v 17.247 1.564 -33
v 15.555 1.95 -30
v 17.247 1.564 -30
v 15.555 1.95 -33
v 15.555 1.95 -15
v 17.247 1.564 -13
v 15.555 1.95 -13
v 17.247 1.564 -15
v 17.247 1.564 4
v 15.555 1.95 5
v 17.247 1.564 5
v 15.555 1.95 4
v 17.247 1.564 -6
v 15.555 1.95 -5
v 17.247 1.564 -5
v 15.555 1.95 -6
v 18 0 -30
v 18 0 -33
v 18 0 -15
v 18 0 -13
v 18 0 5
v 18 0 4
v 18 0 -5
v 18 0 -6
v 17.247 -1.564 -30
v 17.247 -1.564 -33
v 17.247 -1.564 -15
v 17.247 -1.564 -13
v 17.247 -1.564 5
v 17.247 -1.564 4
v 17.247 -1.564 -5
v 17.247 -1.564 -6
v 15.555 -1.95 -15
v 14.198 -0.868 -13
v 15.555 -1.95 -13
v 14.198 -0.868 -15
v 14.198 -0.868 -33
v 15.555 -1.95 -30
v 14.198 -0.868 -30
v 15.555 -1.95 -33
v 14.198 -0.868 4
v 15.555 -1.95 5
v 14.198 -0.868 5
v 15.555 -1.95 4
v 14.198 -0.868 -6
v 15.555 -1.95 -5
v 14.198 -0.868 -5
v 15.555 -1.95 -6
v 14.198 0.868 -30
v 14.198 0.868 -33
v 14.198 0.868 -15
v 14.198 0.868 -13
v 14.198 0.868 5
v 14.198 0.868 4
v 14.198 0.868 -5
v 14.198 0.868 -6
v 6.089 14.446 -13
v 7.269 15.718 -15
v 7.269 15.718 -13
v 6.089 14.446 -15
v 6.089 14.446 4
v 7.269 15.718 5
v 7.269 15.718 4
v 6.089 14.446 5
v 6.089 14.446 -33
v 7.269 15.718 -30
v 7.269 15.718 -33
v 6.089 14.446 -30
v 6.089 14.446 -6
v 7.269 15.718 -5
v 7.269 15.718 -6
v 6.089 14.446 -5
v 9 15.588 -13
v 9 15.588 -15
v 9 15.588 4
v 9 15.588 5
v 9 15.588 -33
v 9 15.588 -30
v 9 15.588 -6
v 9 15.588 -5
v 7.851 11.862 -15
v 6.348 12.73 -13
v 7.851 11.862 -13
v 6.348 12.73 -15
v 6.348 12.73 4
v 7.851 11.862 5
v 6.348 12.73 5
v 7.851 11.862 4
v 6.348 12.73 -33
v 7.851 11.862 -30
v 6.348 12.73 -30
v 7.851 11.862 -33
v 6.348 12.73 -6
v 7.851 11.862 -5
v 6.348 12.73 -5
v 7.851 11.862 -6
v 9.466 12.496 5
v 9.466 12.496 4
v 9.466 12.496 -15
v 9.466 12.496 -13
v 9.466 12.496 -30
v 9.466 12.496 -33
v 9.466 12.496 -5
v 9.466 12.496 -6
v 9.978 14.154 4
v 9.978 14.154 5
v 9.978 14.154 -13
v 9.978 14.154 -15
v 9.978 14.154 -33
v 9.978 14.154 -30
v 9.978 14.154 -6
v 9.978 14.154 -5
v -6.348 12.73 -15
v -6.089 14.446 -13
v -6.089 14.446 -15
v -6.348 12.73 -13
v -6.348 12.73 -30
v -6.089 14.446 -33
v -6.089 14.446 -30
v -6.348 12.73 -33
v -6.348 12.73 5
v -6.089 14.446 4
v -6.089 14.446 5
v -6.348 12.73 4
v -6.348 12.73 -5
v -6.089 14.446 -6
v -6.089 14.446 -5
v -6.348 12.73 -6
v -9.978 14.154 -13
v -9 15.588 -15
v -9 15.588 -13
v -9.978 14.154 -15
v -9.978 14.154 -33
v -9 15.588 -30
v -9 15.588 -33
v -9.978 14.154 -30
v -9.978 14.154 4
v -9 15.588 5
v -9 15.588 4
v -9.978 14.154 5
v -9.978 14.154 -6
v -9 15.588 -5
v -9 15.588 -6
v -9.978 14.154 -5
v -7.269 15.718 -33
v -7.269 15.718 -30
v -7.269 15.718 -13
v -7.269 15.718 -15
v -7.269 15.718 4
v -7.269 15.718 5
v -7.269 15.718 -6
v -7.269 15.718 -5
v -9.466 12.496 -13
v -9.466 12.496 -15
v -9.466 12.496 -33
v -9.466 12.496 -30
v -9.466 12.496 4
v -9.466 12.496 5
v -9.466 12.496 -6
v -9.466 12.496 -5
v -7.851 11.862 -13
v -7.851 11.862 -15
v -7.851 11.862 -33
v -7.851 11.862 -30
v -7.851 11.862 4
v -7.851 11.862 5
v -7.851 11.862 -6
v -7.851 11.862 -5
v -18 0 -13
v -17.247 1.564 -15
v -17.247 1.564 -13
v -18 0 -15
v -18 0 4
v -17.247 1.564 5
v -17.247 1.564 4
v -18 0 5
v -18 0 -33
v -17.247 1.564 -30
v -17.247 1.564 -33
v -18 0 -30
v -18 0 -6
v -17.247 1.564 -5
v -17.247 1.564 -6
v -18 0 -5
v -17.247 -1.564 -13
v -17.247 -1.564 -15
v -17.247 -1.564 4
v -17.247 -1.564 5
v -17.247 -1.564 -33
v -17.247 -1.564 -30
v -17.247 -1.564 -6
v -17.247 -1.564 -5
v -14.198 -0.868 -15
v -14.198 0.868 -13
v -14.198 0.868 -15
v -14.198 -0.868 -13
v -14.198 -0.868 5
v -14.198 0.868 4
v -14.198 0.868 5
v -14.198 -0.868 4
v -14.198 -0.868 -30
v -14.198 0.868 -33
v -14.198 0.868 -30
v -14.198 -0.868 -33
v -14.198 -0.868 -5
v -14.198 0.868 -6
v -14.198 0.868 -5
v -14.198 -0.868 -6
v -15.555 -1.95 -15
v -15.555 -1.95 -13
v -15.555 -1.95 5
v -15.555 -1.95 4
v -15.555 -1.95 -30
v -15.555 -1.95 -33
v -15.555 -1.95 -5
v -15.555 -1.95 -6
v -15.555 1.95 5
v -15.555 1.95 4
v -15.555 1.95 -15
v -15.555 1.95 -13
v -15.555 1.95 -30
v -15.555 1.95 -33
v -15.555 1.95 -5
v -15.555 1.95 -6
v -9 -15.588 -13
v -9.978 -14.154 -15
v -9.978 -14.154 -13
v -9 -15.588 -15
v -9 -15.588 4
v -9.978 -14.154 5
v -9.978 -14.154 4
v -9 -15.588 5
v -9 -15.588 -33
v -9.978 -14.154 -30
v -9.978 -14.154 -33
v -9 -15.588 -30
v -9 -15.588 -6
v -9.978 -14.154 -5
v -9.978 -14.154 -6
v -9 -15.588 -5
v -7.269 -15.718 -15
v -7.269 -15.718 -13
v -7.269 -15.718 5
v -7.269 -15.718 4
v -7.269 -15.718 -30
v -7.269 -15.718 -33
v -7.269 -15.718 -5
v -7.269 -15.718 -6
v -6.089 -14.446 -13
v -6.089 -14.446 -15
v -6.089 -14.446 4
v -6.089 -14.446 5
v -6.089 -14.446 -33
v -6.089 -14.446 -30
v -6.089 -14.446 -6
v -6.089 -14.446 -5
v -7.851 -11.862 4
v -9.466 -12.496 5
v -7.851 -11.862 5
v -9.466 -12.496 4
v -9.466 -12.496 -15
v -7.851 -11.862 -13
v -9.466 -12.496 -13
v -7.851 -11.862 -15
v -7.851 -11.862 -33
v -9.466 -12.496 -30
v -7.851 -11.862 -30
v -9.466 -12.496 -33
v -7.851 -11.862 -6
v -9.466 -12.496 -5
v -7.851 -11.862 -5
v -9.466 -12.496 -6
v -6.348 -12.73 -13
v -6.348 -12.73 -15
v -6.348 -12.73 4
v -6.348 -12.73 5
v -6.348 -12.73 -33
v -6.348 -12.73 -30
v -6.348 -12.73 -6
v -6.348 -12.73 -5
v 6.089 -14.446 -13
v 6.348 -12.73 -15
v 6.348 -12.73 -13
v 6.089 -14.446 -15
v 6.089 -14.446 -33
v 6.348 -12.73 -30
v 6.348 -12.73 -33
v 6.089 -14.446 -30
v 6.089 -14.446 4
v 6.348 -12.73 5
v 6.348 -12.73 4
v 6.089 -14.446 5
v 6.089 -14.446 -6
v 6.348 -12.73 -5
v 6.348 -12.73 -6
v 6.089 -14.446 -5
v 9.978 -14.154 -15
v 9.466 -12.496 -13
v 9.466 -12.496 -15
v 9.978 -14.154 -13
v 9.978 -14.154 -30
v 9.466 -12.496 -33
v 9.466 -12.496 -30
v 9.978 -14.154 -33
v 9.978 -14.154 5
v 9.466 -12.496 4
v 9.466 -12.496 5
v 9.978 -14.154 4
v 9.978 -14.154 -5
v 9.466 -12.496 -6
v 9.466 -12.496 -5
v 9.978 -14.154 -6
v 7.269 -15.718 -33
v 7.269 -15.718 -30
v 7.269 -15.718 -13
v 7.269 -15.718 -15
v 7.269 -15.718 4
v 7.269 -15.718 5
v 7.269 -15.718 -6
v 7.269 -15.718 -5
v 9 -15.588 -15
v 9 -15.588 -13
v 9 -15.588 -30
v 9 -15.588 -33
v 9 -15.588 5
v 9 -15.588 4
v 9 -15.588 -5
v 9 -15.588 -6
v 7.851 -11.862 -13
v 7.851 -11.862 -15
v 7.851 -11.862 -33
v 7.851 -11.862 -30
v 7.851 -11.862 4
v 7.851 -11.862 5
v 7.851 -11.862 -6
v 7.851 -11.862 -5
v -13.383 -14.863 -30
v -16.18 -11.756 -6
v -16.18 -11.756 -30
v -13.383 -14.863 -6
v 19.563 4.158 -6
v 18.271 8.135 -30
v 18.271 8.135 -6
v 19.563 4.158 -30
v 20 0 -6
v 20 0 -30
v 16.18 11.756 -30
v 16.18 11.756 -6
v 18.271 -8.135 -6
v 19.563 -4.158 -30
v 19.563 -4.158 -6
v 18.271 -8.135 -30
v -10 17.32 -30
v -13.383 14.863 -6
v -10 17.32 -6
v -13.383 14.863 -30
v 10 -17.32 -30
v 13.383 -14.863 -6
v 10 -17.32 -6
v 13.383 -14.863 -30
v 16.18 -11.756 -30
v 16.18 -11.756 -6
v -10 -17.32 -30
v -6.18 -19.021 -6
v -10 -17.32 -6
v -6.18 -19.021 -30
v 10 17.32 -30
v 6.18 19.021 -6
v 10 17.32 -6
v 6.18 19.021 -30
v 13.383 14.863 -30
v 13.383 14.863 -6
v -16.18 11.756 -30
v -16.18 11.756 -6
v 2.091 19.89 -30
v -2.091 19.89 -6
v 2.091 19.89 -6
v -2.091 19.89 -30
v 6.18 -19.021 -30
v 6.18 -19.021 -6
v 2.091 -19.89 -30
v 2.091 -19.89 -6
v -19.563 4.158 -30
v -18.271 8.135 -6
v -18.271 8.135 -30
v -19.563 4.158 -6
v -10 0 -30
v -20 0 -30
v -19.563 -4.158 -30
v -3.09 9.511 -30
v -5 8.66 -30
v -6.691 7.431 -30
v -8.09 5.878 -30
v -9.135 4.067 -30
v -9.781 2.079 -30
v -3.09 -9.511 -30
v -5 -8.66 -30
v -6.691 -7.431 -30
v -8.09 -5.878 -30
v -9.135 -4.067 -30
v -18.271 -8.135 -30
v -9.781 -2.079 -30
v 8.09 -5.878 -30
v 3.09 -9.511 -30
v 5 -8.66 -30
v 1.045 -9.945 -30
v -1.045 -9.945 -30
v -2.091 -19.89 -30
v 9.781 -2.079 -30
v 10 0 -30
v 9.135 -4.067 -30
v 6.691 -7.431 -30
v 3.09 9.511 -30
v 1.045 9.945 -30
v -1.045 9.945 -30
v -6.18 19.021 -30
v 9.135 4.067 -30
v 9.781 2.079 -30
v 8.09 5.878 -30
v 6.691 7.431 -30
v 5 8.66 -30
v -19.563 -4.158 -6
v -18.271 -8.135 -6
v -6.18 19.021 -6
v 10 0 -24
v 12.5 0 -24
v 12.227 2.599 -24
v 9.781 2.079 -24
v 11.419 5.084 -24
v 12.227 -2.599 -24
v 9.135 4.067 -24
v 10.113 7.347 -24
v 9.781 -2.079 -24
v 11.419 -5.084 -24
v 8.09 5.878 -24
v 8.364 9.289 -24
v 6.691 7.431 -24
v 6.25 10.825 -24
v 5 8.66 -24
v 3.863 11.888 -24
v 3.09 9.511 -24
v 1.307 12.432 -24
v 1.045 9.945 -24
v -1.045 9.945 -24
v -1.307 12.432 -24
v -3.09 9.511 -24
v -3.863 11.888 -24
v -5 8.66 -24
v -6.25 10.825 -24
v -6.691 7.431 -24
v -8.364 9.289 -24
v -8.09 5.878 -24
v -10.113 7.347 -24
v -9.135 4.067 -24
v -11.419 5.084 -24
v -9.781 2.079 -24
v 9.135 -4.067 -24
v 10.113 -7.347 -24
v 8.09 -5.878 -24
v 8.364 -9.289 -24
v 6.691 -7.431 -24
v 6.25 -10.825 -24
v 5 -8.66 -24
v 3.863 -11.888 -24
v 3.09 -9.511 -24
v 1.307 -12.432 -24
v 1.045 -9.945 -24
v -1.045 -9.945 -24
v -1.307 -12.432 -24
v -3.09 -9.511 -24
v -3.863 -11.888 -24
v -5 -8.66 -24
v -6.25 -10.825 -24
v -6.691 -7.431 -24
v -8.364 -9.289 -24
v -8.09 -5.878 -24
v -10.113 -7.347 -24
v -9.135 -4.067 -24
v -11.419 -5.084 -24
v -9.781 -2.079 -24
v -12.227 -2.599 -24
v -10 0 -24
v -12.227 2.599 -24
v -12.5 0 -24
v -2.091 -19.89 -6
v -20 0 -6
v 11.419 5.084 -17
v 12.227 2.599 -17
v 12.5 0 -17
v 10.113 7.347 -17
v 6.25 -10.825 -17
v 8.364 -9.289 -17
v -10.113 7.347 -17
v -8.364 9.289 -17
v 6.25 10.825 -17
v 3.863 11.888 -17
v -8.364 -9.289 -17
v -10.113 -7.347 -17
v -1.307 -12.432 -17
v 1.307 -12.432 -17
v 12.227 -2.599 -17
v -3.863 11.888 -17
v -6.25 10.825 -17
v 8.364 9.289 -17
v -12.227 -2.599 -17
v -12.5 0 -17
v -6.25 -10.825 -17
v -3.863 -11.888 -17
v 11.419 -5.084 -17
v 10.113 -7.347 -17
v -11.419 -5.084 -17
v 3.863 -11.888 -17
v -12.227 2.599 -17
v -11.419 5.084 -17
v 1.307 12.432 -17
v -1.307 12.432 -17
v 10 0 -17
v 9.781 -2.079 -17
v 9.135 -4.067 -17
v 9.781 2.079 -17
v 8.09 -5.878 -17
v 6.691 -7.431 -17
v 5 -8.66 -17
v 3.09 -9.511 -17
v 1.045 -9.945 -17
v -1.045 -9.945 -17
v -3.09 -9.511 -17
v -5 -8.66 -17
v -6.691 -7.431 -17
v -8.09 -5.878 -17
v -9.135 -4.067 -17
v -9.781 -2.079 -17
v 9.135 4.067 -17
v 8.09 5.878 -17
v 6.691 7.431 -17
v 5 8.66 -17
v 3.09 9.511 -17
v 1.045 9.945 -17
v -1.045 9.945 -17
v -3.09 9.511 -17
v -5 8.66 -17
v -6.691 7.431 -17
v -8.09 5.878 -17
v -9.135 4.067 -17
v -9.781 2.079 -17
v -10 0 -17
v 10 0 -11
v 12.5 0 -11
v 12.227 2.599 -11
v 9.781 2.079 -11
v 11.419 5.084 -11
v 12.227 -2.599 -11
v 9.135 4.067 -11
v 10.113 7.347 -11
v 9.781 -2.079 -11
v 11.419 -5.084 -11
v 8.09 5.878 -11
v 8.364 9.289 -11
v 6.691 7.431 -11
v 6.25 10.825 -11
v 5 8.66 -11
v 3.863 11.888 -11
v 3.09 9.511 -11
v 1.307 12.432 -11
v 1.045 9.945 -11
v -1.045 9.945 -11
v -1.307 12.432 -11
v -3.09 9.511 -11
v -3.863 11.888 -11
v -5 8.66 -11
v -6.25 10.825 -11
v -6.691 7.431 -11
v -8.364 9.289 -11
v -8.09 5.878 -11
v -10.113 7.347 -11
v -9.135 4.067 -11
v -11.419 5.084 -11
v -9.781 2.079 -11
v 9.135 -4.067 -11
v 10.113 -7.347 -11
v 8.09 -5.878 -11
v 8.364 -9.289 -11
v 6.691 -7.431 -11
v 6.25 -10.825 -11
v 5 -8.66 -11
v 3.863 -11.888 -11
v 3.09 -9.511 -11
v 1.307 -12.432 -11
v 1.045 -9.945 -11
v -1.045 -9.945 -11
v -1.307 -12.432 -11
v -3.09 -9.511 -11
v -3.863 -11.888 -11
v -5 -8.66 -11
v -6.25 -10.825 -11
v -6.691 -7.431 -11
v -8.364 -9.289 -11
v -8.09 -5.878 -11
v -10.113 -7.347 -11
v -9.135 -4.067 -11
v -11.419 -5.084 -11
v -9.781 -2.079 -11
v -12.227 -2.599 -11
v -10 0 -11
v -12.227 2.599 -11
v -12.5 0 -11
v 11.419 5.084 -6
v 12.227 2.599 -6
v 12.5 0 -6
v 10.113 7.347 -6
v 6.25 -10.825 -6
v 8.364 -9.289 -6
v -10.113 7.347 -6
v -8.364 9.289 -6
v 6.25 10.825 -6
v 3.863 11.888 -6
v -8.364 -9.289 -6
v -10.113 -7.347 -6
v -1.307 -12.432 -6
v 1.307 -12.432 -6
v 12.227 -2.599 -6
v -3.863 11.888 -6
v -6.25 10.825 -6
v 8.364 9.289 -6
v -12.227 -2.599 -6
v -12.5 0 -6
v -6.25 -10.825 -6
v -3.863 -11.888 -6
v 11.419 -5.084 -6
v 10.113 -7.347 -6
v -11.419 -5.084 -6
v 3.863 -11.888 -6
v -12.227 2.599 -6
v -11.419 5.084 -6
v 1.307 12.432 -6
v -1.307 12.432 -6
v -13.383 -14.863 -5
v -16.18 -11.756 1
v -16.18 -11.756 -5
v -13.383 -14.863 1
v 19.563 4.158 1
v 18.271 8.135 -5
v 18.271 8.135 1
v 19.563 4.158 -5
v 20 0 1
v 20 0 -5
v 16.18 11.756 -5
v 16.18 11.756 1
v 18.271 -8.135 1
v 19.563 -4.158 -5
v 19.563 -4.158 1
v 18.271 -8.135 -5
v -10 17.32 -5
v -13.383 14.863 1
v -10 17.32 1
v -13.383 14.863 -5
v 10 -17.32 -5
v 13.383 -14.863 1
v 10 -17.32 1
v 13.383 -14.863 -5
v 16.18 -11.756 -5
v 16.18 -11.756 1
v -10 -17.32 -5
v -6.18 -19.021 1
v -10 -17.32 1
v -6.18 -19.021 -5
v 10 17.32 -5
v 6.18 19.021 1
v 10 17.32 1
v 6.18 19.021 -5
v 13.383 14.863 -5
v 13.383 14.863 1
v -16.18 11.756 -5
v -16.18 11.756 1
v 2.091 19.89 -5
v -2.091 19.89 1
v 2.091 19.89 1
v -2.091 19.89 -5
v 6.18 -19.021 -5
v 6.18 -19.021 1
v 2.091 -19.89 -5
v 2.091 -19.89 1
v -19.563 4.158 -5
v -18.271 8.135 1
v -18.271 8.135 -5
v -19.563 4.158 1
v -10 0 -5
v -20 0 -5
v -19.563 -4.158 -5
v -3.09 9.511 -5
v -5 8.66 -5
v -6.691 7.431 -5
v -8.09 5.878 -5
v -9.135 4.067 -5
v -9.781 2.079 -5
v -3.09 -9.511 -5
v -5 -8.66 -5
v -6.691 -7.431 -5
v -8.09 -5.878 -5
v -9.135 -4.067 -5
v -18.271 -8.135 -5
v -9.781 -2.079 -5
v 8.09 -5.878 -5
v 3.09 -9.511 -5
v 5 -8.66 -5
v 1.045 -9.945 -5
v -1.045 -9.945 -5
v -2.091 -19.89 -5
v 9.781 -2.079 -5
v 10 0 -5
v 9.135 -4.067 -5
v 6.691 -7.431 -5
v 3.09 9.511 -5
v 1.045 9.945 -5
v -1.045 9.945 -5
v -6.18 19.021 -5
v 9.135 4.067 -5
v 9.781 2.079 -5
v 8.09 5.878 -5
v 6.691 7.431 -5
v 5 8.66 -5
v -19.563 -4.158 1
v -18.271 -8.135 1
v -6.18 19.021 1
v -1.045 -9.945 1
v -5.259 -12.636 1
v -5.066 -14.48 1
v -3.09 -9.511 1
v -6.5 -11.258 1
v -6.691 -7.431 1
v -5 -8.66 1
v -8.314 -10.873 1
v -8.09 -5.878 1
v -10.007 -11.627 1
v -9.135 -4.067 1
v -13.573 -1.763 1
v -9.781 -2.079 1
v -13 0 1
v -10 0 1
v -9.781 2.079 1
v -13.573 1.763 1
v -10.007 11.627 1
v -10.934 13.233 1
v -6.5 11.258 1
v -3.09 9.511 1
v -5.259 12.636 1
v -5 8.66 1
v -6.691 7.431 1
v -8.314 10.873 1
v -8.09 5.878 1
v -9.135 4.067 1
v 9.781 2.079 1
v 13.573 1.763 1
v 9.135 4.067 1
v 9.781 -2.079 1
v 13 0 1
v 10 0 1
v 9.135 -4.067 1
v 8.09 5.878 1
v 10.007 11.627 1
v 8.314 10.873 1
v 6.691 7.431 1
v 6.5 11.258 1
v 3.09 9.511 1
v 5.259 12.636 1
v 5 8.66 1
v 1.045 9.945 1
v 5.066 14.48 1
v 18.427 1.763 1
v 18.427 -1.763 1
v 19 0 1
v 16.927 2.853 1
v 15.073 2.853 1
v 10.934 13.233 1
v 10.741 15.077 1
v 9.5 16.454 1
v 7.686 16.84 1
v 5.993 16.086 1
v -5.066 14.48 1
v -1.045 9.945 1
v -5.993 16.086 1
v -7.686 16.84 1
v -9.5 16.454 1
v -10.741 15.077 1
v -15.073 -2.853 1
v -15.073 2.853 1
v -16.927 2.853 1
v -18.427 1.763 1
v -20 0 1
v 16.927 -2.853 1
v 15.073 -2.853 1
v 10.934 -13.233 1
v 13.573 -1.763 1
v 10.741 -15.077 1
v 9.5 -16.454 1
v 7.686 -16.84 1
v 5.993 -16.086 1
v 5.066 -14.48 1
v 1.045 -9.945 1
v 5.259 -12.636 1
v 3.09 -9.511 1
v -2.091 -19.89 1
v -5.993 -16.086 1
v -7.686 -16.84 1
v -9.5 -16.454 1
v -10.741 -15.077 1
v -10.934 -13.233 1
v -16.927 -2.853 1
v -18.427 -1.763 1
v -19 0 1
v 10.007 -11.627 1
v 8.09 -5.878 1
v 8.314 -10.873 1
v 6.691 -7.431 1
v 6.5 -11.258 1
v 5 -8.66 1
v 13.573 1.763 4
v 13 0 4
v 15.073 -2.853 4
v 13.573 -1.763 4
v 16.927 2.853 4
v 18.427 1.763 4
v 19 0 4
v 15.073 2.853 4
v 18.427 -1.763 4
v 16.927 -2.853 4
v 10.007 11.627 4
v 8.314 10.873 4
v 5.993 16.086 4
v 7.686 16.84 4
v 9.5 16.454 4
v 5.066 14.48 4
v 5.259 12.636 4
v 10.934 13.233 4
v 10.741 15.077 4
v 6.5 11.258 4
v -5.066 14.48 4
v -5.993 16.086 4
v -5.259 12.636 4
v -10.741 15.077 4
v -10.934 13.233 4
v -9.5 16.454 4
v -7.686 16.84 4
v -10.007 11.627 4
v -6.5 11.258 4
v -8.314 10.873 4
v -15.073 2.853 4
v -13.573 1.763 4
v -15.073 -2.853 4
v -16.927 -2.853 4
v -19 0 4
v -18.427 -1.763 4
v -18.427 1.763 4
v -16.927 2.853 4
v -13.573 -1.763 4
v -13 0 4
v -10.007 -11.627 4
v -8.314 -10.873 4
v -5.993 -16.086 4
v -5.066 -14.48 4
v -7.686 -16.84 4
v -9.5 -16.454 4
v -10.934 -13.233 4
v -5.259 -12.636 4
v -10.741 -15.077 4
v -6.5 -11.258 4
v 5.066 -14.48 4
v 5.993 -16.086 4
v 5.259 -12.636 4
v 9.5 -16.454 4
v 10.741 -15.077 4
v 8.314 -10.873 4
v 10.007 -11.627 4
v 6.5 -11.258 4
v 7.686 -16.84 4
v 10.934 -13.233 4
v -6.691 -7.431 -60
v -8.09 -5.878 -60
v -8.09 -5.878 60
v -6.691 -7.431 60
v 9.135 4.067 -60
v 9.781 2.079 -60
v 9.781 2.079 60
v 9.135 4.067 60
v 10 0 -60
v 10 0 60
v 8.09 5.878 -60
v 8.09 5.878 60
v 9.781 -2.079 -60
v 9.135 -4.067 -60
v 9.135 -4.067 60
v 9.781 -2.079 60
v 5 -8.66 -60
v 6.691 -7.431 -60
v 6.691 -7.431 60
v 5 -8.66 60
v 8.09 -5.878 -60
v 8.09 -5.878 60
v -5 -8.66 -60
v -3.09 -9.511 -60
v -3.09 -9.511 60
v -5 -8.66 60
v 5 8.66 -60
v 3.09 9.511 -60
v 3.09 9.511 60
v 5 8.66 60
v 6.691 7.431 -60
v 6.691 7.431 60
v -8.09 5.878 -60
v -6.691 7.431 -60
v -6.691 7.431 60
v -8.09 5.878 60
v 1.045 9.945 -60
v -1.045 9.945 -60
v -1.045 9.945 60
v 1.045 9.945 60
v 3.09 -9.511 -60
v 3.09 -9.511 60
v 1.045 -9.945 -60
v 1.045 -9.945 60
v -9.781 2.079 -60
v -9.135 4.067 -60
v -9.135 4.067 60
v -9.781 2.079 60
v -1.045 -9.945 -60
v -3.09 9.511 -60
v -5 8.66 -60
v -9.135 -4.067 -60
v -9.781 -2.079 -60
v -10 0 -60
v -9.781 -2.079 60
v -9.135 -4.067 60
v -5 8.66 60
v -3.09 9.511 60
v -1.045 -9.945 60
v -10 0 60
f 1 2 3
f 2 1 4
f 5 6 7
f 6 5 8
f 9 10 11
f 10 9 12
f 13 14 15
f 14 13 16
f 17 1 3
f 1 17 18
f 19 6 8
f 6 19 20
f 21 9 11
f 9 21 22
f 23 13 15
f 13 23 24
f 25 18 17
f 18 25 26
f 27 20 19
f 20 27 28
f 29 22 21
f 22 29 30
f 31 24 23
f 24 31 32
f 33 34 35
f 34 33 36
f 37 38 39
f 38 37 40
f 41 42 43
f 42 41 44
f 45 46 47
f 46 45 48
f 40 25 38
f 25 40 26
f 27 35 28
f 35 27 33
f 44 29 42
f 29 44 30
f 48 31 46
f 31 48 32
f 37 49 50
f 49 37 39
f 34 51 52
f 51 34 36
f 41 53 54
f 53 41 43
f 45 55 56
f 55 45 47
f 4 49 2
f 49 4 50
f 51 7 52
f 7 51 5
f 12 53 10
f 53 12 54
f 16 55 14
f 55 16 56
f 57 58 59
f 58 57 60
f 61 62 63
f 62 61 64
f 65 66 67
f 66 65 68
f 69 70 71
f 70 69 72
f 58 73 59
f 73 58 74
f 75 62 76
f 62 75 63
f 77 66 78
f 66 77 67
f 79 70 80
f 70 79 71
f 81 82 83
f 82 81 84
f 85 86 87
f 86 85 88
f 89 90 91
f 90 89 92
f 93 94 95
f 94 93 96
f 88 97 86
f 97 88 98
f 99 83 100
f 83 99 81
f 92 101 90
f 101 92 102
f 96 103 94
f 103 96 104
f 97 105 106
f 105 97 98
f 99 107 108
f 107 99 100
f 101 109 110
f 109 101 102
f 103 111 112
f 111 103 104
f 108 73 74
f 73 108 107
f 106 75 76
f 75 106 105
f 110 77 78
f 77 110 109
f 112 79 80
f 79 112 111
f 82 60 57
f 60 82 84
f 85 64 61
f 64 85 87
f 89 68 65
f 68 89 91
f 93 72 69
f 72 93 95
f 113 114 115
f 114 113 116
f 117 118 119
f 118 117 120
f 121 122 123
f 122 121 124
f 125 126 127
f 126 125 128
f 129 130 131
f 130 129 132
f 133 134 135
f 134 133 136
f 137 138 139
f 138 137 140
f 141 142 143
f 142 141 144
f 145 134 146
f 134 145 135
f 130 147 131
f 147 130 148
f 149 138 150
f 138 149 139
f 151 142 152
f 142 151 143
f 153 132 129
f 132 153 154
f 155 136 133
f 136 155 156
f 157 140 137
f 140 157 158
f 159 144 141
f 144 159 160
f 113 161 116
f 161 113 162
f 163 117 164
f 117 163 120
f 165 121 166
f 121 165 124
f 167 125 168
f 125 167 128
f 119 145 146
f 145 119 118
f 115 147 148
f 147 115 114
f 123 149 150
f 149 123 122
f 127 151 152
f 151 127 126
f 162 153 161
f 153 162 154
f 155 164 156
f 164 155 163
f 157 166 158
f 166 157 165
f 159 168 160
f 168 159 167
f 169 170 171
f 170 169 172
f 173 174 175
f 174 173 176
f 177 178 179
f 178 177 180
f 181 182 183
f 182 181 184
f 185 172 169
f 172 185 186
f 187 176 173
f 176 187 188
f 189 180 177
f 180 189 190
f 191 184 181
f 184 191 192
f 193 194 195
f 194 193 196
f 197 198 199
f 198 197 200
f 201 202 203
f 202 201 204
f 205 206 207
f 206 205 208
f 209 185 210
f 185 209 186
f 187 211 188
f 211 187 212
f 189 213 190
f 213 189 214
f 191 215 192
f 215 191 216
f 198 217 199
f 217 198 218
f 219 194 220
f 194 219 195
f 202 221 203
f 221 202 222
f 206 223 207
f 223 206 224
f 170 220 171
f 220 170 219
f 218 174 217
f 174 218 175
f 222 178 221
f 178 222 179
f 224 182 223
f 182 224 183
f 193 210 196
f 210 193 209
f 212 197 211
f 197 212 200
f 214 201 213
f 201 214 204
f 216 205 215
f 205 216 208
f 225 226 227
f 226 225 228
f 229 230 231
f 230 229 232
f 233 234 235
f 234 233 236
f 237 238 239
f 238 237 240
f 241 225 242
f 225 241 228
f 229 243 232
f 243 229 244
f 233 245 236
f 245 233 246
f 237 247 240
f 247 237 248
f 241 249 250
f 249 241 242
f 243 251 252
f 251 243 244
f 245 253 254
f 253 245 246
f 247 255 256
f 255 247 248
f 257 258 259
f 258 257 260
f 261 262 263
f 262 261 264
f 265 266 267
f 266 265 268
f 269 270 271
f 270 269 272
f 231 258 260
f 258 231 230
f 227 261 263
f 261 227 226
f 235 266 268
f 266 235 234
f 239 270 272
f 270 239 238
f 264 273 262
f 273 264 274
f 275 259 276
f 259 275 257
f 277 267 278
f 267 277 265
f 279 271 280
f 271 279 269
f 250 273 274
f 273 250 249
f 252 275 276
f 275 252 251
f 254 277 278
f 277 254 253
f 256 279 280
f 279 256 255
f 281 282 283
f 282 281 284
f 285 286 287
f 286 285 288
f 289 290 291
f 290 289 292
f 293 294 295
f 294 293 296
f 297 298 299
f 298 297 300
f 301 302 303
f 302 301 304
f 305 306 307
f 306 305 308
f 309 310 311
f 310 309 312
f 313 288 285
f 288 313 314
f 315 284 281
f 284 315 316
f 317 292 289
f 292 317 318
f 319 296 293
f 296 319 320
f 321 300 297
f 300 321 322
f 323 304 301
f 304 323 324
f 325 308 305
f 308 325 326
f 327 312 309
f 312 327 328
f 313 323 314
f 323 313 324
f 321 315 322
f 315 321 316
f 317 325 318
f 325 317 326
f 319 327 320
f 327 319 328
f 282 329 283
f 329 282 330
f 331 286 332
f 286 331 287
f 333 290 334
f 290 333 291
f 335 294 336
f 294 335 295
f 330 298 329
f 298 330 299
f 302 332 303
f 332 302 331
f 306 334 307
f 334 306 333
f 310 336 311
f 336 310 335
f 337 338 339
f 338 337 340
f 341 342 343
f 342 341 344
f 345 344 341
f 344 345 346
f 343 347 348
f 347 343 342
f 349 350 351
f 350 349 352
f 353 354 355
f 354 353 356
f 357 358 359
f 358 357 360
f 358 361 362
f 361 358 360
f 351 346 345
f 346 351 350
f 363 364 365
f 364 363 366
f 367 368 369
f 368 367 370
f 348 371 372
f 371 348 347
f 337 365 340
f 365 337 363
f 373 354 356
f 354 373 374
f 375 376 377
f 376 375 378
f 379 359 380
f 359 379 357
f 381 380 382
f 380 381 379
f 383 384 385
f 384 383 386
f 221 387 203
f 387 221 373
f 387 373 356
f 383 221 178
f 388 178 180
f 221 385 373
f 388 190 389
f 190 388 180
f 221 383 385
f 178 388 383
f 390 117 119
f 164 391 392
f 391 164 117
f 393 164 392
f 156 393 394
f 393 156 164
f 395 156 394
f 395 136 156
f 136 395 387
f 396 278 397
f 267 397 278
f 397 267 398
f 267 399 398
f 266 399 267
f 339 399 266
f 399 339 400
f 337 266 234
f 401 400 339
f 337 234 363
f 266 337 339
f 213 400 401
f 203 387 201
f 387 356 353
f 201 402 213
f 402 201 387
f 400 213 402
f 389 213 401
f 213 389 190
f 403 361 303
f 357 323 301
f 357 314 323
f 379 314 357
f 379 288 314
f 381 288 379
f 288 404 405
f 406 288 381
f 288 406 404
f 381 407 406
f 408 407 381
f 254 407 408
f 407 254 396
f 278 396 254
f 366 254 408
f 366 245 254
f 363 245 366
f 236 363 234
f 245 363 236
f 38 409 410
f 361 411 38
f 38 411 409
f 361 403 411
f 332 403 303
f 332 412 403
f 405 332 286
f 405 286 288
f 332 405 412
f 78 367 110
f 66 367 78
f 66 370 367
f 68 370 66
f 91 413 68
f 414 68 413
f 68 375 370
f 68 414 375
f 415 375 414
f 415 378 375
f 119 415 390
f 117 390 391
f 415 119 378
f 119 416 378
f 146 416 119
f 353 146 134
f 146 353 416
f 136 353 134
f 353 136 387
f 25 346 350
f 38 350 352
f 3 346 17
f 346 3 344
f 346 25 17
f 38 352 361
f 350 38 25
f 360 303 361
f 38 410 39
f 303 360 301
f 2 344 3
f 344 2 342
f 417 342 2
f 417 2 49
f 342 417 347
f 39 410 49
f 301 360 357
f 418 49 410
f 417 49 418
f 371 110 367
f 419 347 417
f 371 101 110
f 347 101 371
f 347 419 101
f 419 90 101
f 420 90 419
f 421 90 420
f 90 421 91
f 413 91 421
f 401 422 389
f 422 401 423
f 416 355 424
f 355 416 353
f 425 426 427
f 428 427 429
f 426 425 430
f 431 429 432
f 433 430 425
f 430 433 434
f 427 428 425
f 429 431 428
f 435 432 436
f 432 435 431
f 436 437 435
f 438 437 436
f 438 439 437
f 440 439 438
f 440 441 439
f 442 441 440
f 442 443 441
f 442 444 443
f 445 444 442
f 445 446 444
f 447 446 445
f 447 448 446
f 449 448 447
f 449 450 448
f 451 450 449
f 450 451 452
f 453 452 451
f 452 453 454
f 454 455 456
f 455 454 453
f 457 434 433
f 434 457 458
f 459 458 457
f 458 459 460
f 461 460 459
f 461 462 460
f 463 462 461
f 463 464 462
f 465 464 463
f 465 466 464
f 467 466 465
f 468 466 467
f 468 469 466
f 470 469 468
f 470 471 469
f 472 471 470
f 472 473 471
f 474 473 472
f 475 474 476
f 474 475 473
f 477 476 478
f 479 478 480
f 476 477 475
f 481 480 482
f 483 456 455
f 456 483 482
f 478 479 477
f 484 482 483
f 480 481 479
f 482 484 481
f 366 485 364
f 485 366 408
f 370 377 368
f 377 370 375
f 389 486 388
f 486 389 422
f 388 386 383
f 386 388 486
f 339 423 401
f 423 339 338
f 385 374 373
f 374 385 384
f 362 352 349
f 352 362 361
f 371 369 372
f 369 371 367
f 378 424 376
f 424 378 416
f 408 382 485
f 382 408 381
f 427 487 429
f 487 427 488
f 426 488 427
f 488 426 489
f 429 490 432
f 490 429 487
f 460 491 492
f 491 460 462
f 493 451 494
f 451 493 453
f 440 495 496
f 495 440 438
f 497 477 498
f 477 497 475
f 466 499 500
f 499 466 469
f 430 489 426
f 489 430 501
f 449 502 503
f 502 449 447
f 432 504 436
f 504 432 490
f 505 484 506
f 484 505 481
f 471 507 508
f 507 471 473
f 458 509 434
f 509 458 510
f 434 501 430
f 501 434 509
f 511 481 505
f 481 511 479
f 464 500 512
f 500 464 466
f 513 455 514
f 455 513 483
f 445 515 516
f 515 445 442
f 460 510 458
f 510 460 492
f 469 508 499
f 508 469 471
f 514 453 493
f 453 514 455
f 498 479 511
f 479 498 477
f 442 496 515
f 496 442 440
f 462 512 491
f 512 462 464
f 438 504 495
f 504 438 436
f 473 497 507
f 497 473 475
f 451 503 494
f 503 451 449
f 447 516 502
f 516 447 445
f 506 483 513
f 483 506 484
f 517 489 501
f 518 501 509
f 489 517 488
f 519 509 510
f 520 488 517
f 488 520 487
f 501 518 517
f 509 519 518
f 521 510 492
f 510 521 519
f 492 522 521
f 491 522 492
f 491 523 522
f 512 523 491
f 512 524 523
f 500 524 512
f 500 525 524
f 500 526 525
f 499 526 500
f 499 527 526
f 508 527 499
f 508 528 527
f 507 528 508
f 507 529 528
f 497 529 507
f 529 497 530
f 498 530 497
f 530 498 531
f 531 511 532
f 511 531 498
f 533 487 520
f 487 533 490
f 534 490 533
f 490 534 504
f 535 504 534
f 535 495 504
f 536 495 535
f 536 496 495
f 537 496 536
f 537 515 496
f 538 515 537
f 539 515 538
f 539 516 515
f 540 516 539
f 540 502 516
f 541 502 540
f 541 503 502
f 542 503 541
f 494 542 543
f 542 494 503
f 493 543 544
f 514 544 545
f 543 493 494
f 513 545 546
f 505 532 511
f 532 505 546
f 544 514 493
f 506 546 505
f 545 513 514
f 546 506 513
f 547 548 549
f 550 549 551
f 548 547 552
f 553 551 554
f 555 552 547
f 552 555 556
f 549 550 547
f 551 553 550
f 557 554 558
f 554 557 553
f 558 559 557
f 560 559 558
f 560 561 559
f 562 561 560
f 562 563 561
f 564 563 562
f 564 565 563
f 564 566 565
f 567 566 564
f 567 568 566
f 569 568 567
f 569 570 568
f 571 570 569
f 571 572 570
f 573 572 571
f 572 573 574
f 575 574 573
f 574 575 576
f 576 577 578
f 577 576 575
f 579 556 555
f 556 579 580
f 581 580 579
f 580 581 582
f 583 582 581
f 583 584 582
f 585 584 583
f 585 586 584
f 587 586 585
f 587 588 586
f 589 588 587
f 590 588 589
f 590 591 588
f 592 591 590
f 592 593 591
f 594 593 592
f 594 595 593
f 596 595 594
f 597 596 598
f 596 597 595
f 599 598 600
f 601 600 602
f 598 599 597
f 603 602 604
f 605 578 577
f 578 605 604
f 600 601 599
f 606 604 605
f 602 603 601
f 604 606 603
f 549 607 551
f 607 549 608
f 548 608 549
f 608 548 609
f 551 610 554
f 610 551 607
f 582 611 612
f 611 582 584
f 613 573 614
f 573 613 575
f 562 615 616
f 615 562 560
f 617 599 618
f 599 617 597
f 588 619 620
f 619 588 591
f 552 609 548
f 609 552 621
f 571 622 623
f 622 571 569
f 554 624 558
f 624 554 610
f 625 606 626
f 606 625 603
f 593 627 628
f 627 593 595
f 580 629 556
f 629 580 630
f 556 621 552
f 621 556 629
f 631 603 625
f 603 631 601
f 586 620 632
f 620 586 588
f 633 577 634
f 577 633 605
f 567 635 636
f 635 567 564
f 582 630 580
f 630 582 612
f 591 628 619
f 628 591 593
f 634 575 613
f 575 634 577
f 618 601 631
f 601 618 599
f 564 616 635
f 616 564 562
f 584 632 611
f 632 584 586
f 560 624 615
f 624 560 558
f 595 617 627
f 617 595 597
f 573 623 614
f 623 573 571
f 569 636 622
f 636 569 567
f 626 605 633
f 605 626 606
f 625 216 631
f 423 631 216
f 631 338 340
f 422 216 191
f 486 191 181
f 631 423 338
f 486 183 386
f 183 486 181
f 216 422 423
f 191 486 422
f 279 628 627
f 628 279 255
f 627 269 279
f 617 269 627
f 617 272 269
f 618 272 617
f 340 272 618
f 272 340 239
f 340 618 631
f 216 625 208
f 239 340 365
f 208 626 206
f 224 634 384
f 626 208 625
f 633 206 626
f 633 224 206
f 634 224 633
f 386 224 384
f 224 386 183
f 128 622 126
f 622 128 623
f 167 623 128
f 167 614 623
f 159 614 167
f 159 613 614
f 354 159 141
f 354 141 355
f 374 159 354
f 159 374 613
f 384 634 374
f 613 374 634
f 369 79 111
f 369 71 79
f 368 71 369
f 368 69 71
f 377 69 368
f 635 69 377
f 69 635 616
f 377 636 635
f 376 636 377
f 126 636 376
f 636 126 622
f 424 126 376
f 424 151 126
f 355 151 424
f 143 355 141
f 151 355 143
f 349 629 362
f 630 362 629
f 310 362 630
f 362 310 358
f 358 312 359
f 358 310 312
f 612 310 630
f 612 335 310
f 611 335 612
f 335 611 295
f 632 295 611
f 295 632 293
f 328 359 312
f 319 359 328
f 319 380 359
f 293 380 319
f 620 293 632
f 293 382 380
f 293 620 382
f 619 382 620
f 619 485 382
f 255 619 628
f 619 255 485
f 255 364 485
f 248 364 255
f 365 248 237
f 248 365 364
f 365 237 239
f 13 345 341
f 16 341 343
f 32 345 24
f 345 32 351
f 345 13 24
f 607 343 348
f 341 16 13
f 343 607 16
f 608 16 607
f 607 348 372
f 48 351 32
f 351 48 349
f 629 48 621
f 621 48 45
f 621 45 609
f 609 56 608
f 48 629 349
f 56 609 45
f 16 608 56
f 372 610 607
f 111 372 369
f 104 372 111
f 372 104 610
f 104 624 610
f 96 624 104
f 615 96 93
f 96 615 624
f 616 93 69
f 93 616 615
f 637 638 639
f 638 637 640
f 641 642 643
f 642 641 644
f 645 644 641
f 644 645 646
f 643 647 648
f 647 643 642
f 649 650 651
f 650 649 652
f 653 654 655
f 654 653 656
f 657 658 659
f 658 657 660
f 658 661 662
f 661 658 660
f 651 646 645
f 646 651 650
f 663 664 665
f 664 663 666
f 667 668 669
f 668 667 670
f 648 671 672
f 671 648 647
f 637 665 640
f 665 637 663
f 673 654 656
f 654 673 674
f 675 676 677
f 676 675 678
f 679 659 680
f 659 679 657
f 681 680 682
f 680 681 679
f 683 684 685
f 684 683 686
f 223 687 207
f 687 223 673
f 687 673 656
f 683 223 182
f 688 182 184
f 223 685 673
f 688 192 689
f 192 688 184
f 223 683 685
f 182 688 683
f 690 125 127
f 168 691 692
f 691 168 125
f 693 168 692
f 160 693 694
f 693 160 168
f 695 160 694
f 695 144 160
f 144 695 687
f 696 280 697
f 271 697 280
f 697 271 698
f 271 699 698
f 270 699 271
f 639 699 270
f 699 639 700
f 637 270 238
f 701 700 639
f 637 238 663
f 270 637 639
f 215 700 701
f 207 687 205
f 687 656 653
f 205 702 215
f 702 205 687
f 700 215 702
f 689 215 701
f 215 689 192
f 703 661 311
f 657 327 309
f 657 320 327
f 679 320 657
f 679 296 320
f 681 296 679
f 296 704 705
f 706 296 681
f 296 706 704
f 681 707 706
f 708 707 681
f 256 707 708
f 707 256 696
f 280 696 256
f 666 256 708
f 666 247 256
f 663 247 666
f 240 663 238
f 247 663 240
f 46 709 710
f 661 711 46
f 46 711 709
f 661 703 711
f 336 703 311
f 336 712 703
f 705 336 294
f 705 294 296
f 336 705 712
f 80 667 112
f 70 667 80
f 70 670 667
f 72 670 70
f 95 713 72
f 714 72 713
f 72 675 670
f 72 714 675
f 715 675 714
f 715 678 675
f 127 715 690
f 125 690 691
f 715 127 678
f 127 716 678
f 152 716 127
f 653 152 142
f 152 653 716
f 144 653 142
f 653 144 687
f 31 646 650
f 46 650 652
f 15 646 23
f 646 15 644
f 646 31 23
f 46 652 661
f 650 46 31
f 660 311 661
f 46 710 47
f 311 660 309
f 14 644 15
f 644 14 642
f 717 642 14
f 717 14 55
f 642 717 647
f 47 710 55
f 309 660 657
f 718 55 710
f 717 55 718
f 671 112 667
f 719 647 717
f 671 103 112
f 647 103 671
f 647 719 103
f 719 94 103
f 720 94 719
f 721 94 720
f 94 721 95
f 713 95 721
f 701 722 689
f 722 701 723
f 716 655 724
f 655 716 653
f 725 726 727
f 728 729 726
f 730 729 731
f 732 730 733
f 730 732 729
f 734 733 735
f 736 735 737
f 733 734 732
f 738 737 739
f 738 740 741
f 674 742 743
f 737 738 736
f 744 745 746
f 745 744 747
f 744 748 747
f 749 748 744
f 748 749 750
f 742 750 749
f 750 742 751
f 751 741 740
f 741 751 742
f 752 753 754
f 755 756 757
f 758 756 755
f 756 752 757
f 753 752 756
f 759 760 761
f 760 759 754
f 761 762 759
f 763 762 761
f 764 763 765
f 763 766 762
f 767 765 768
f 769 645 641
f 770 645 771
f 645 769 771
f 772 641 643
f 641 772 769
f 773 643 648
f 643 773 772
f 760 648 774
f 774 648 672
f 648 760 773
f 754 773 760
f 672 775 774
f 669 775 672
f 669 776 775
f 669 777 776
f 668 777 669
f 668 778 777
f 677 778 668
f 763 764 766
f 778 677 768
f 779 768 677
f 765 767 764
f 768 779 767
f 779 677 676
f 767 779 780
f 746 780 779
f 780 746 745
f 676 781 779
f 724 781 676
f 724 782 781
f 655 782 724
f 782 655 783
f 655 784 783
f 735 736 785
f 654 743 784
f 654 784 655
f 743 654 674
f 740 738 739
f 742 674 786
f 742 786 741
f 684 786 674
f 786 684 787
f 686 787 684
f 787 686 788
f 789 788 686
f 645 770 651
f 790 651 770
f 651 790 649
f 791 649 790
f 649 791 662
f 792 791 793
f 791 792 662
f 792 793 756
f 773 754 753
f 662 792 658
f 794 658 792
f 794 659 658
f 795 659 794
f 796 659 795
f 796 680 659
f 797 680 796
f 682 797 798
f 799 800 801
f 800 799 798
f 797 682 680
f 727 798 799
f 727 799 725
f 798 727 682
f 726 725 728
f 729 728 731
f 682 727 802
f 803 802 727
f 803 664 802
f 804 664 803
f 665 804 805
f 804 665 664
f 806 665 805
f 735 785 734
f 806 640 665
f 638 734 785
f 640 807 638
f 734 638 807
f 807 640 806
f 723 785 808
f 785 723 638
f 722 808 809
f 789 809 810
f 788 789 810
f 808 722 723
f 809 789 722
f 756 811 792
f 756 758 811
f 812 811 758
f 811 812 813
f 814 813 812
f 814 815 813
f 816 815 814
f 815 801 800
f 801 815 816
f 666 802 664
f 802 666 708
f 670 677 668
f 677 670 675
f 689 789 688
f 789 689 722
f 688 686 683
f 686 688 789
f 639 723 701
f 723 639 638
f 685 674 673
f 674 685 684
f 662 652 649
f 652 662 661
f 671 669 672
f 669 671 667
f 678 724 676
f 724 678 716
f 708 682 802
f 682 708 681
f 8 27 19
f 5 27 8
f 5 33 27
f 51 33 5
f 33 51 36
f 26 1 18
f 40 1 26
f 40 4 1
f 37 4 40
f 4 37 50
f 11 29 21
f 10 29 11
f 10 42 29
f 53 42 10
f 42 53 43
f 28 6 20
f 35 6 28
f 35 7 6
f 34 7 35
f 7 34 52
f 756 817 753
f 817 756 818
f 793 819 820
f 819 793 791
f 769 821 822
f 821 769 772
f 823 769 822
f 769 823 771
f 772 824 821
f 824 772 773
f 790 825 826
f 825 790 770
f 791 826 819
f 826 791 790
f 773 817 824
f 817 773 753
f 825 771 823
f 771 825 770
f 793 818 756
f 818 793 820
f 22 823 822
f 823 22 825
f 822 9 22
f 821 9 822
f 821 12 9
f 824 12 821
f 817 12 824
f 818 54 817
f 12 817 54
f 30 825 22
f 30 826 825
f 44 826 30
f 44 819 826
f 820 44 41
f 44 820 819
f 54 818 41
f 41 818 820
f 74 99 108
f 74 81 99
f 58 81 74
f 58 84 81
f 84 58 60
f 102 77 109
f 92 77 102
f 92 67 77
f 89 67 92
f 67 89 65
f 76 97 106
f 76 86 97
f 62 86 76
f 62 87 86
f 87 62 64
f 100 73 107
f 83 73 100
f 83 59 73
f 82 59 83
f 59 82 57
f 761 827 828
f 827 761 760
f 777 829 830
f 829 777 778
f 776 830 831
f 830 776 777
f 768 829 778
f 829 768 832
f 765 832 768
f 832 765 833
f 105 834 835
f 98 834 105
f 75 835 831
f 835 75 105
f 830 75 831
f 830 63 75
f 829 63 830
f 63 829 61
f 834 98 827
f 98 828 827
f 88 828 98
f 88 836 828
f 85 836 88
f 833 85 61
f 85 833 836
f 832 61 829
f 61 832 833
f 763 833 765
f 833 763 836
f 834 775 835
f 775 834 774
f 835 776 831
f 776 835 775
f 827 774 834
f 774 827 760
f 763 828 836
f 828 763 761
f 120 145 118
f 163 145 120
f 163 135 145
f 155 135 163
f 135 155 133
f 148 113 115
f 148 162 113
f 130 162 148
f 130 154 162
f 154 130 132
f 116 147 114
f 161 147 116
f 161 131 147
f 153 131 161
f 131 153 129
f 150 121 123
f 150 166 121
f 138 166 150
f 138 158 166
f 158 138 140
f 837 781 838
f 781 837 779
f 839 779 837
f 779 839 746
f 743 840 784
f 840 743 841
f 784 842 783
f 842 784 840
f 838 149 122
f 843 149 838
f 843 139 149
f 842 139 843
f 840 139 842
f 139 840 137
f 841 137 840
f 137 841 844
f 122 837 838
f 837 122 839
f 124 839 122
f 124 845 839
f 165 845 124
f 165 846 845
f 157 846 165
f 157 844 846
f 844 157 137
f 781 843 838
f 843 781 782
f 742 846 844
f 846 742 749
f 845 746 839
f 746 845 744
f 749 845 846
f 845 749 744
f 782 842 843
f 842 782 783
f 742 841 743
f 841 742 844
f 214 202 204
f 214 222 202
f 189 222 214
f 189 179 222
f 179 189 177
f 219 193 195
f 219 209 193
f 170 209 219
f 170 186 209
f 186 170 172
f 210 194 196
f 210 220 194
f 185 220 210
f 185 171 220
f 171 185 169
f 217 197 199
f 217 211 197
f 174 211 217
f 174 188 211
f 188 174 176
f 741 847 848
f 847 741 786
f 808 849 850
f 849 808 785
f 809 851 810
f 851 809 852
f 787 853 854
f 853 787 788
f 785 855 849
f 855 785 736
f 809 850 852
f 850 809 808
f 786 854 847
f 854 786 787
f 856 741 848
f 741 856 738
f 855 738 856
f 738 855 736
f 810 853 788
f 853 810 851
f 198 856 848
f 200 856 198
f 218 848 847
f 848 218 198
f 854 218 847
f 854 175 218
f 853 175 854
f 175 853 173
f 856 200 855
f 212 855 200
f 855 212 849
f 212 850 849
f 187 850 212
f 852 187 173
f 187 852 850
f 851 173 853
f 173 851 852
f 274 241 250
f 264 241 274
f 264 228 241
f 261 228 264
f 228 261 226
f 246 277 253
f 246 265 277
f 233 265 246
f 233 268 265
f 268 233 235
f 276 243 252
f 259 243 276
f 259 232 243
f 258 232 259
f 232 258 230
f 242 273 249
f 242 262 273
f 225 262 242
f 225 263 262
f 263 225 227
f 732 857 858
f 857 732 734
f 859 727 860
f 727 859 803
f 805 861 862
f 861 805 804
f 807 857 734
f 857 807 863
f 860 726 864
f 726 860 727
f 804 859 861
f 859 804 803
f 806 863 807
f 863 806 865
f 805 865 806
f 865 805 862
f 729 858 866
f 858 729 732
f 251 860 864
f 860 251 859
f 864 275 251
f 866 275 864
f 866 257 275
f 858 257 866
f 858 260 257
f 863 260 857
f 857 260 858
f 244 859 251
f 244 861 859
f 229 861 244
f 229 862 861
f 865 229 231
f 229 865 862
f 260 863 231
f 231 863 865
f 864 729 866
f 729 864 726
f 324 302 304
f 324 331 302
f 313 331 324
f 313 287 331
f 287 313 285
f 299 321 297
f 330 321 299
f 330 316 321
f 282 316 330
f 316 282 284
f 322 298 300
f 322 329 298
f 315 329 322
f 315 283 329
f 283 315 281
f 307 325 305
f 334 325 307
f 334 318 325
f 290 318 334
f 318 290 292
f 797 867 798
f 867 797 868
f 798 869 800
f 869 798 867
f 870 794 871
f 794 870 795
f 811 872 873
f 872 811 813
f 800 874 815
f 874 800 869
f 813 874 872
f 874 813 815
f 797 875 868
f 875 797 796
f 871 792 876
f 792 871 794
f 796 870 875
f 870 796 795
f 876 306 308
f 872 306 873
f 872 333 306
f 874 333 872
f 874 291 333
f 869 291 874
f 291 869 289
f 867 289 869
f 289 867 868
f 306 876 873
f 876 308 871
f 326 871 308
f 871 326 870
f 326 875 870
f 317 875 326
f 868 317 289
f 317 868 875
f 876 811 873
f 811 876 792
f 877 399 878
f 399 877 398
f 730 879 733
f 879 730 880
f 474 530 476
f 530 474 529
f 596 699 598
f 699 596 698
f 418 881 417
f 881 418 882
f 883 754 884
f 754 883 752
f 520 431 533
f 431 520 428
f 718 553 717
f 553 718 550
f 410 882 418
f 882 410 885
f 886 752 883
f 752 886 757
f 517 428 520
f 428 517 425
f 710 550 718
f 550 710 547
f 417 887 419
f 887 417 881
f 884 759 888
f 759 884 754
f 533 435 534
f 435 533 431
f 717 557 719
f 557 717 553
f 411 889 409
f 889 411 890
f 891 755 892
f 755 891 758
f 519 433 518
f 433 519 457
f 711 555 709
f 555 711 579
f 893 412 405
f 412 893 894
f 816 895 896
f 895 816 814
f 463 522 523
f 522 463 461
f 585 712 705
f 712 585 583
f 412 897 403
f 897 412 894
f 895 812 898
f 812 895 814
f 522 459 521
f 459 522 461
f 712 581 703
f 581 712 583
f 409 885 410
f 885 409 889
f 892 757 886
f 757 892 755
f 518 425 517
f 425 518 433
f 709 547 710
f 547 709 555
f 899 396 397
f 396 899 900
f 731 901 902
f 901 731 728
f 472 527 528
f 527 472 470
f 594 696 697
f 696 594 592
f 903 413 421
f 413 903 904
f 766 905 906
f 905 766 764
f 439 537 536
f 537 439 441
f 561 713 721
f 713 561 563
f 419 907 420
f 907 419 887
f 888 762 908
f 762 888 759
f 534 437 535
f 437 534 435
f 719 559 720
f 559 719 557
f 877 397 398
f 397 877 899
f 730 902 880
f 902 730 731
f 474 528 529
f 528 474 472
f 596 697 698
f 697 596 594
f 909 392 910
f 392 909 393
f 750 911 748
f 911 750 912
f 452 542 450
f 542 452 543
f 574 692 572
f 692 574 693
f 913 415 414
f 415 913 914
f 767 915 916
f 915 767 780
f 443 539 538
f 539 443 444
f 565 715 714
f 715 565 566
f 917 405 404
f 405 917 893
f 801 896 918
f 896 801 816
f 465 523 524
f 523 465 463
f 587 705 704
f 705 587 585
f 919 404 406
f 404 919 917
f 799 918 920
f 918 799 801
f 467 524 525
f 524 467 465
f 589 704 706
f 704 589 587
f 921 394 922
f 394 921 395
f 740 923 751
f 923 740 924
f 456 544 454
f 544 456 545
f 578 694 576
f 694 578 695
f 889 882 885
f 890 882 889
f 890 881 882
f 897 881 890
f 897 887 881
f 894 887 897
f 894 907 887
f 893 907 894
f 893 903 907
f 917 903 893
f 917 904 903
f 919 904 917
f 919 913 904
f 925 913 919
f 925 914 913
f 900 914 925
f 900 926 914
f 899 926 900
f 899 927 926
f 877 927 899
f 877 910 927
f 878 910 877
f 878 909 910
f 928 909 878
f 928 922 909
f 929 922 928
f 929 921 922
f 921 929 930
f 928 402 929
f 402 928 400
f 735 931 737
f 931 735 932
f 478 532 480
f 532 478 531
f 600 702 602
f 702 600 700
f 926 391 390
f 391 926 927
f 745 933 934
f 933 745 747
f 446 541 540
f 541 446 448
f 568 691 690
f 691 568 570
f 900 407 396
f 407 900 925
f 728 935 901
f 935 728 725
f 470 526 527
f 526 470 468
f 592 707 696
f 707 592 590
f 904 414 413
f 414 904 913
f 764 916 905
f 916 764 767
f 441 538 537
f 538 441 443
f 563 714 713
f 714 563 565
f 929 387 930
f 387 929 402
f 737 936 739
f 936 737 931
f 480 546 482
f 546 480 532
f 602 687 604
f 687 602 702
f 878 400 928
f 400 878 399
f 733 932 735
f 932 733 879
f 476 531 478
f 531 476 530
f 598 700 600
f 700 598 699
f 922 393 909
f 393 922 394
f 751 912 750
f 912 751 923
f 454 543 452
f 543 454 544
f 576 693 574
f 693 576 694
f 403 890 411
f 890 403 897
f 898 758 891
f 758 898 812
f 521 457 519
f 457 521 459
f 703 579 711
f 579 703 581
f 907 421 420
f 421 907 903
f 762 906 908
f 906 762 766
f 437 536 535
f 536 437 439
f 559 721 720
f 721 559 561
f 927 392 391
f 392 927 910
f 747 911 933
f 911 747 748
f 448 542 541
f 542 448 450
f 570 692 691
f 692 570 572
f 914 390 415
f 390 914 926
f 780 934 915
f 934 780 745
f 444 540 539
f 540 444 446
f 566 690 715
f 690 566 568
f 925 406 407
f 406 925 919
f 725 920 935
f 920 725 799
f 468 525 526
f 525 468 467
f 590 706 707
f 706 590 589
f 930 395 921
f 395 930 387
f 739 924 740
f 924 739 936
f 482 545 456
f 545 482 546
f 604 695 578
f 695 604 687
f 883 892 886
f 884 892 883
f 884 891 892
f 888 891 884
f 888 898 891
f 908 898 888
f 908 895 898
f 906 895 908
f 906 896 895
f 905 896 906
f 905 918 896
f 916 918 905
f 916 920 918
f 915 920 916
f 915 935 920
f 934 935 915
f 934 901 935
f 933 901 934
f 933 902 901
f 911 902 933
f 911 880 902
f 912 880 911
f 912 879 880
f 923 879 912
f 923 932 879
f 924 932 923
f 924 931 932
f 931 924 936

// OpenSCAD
// Parameters
shaft_diameter = 20;
shaft_length = 60; // Adjusted to match original model
flange_diameter = 40;
flange_thickness = 6; // Adjusted thickness for better alignment
spacer_thickness = 3; // Adjusted to ensure proper spacing
flexible_element_thickness = 4; // Adjusted for correct positioning
bolt_diameter = 4;
bolt_length = 18; // Adjusted to ensure bolts secure properly
nut_diameter = 6;
nut_thickness = 4; // Adjusted for better securing
bolt_spacing = 32; // Adjusted for correct hole placement
bolt_count = 6; // Increased number of bolts for better accuracy

// Modules
module shaft() {
    cylinder(h = shaft_length, d = shaft_diameter, center = true);
}

module flange_plate() {
    difference() {
        cylinder(h = flange_thickness, d = flange_diameter, center = true);
        for (i = [0:bolt_count - 1]) {
            rotate([0, 0, i * (360 / bolt_count)])
                translate([bolt_spacing / 2, 0, 0])
                cylinder(h = flange_thickness + 1, d = bolt_diameter, center = true);
        }
    }
}

module spacer_ring() {
    difference() {
        cylinder(h = spacer_thickness, d = flange_diameter, center = true);
        cylinder(h = spacer_thickness + 1, d = shaft_diameter + 5, center = true);
    }
}

module flexible_element() {
    difference() {
        cylinder(h = flexible_element_thickness, d = flange_diameter, center = true);
        cylinder(h = flexible_element_thickness + 1, d = shaft_diameter + 5, center = true);
    }
}

module bolt() {
    cylinder(h = bolt_length, d = bolt_diameter, center = true);
}

module nut() {
    cylinder(h = nut_thickness, d = nut_diameter, center = true);
}

// Assembly
module coupling() {
    translate([0, 0, -shaft_length / 2]) shaft();
    
    translate([0, 0, -shaft_length / 2 + flange_thickness / 2]) flange_plate();
    
    translate([0, 0, -shaft_length / 2 + flange_thickness + spacer_thickness / 2]) spacer_ring();
    
    translate([0, 0, -shaft_length / 2 + flange_thickness + spacer_thickness + flexible_element_thickness / 2]) flexible_element();
    
    translate([0, 0, -shaft_length / 2 + flange_thickness + spacer_thickness + flexible_element_thickness + flange_thickness / 2]) flange_plate();
    
    translate([0, 0, -shaft_length / 2 + flange_thickness * 2 + spacer_thickness + flexible_element_thickness + spacer_thickness / 2]) spacer_ring();
    
    translate([0, 0, -shaft_length / 2 + flange_thickness * 2 + spacer_thickness * 2 + flexible_element_thickness * 2 / 2]) flexible_element();
    
    translate([0, 0, -shaft_length / 2 + flange_thickness * 3 + spacer_thickness * 2 + flexible_element_thickness * 2 / 2]) flange_plate();
    
    translate([0, 0, shaft_length / 2]) shaft();
    
    for (i = [0:bolt_count - 1]) {
        rotate([0, 0, i * (360 / bolt_count)])
            translate([bolt_spacing / 2, 0, -shaft_length / 2 + flange_thickness])
            bolt();
        
        rotate([0, 0, i * (360 / bolt_count)])
            translate([bolt_spacing / 2, 0, -shaft_length / 2 + flange_thickness * 2 + spacer_thickness * 2 + flexible_element_thickness * 2])
            bolt();
        
        rotate([0, 0, i * (360 / bolt_count)])
            translate([bolt_spacing / 2, 0, -shaft_length / 2 + flange_thickness / 2])
            nut();
        
        rotate([0, 0, i * (360 / bolt_count)])
            translate([bolt_spacing / 2, 0, -shaft_length / 2 + flange_thickness * 3 + spacer_thickness * 2 + flexible_element_thickness * 2])
            nut();
    }
}

// Render the coupling
coupling();
